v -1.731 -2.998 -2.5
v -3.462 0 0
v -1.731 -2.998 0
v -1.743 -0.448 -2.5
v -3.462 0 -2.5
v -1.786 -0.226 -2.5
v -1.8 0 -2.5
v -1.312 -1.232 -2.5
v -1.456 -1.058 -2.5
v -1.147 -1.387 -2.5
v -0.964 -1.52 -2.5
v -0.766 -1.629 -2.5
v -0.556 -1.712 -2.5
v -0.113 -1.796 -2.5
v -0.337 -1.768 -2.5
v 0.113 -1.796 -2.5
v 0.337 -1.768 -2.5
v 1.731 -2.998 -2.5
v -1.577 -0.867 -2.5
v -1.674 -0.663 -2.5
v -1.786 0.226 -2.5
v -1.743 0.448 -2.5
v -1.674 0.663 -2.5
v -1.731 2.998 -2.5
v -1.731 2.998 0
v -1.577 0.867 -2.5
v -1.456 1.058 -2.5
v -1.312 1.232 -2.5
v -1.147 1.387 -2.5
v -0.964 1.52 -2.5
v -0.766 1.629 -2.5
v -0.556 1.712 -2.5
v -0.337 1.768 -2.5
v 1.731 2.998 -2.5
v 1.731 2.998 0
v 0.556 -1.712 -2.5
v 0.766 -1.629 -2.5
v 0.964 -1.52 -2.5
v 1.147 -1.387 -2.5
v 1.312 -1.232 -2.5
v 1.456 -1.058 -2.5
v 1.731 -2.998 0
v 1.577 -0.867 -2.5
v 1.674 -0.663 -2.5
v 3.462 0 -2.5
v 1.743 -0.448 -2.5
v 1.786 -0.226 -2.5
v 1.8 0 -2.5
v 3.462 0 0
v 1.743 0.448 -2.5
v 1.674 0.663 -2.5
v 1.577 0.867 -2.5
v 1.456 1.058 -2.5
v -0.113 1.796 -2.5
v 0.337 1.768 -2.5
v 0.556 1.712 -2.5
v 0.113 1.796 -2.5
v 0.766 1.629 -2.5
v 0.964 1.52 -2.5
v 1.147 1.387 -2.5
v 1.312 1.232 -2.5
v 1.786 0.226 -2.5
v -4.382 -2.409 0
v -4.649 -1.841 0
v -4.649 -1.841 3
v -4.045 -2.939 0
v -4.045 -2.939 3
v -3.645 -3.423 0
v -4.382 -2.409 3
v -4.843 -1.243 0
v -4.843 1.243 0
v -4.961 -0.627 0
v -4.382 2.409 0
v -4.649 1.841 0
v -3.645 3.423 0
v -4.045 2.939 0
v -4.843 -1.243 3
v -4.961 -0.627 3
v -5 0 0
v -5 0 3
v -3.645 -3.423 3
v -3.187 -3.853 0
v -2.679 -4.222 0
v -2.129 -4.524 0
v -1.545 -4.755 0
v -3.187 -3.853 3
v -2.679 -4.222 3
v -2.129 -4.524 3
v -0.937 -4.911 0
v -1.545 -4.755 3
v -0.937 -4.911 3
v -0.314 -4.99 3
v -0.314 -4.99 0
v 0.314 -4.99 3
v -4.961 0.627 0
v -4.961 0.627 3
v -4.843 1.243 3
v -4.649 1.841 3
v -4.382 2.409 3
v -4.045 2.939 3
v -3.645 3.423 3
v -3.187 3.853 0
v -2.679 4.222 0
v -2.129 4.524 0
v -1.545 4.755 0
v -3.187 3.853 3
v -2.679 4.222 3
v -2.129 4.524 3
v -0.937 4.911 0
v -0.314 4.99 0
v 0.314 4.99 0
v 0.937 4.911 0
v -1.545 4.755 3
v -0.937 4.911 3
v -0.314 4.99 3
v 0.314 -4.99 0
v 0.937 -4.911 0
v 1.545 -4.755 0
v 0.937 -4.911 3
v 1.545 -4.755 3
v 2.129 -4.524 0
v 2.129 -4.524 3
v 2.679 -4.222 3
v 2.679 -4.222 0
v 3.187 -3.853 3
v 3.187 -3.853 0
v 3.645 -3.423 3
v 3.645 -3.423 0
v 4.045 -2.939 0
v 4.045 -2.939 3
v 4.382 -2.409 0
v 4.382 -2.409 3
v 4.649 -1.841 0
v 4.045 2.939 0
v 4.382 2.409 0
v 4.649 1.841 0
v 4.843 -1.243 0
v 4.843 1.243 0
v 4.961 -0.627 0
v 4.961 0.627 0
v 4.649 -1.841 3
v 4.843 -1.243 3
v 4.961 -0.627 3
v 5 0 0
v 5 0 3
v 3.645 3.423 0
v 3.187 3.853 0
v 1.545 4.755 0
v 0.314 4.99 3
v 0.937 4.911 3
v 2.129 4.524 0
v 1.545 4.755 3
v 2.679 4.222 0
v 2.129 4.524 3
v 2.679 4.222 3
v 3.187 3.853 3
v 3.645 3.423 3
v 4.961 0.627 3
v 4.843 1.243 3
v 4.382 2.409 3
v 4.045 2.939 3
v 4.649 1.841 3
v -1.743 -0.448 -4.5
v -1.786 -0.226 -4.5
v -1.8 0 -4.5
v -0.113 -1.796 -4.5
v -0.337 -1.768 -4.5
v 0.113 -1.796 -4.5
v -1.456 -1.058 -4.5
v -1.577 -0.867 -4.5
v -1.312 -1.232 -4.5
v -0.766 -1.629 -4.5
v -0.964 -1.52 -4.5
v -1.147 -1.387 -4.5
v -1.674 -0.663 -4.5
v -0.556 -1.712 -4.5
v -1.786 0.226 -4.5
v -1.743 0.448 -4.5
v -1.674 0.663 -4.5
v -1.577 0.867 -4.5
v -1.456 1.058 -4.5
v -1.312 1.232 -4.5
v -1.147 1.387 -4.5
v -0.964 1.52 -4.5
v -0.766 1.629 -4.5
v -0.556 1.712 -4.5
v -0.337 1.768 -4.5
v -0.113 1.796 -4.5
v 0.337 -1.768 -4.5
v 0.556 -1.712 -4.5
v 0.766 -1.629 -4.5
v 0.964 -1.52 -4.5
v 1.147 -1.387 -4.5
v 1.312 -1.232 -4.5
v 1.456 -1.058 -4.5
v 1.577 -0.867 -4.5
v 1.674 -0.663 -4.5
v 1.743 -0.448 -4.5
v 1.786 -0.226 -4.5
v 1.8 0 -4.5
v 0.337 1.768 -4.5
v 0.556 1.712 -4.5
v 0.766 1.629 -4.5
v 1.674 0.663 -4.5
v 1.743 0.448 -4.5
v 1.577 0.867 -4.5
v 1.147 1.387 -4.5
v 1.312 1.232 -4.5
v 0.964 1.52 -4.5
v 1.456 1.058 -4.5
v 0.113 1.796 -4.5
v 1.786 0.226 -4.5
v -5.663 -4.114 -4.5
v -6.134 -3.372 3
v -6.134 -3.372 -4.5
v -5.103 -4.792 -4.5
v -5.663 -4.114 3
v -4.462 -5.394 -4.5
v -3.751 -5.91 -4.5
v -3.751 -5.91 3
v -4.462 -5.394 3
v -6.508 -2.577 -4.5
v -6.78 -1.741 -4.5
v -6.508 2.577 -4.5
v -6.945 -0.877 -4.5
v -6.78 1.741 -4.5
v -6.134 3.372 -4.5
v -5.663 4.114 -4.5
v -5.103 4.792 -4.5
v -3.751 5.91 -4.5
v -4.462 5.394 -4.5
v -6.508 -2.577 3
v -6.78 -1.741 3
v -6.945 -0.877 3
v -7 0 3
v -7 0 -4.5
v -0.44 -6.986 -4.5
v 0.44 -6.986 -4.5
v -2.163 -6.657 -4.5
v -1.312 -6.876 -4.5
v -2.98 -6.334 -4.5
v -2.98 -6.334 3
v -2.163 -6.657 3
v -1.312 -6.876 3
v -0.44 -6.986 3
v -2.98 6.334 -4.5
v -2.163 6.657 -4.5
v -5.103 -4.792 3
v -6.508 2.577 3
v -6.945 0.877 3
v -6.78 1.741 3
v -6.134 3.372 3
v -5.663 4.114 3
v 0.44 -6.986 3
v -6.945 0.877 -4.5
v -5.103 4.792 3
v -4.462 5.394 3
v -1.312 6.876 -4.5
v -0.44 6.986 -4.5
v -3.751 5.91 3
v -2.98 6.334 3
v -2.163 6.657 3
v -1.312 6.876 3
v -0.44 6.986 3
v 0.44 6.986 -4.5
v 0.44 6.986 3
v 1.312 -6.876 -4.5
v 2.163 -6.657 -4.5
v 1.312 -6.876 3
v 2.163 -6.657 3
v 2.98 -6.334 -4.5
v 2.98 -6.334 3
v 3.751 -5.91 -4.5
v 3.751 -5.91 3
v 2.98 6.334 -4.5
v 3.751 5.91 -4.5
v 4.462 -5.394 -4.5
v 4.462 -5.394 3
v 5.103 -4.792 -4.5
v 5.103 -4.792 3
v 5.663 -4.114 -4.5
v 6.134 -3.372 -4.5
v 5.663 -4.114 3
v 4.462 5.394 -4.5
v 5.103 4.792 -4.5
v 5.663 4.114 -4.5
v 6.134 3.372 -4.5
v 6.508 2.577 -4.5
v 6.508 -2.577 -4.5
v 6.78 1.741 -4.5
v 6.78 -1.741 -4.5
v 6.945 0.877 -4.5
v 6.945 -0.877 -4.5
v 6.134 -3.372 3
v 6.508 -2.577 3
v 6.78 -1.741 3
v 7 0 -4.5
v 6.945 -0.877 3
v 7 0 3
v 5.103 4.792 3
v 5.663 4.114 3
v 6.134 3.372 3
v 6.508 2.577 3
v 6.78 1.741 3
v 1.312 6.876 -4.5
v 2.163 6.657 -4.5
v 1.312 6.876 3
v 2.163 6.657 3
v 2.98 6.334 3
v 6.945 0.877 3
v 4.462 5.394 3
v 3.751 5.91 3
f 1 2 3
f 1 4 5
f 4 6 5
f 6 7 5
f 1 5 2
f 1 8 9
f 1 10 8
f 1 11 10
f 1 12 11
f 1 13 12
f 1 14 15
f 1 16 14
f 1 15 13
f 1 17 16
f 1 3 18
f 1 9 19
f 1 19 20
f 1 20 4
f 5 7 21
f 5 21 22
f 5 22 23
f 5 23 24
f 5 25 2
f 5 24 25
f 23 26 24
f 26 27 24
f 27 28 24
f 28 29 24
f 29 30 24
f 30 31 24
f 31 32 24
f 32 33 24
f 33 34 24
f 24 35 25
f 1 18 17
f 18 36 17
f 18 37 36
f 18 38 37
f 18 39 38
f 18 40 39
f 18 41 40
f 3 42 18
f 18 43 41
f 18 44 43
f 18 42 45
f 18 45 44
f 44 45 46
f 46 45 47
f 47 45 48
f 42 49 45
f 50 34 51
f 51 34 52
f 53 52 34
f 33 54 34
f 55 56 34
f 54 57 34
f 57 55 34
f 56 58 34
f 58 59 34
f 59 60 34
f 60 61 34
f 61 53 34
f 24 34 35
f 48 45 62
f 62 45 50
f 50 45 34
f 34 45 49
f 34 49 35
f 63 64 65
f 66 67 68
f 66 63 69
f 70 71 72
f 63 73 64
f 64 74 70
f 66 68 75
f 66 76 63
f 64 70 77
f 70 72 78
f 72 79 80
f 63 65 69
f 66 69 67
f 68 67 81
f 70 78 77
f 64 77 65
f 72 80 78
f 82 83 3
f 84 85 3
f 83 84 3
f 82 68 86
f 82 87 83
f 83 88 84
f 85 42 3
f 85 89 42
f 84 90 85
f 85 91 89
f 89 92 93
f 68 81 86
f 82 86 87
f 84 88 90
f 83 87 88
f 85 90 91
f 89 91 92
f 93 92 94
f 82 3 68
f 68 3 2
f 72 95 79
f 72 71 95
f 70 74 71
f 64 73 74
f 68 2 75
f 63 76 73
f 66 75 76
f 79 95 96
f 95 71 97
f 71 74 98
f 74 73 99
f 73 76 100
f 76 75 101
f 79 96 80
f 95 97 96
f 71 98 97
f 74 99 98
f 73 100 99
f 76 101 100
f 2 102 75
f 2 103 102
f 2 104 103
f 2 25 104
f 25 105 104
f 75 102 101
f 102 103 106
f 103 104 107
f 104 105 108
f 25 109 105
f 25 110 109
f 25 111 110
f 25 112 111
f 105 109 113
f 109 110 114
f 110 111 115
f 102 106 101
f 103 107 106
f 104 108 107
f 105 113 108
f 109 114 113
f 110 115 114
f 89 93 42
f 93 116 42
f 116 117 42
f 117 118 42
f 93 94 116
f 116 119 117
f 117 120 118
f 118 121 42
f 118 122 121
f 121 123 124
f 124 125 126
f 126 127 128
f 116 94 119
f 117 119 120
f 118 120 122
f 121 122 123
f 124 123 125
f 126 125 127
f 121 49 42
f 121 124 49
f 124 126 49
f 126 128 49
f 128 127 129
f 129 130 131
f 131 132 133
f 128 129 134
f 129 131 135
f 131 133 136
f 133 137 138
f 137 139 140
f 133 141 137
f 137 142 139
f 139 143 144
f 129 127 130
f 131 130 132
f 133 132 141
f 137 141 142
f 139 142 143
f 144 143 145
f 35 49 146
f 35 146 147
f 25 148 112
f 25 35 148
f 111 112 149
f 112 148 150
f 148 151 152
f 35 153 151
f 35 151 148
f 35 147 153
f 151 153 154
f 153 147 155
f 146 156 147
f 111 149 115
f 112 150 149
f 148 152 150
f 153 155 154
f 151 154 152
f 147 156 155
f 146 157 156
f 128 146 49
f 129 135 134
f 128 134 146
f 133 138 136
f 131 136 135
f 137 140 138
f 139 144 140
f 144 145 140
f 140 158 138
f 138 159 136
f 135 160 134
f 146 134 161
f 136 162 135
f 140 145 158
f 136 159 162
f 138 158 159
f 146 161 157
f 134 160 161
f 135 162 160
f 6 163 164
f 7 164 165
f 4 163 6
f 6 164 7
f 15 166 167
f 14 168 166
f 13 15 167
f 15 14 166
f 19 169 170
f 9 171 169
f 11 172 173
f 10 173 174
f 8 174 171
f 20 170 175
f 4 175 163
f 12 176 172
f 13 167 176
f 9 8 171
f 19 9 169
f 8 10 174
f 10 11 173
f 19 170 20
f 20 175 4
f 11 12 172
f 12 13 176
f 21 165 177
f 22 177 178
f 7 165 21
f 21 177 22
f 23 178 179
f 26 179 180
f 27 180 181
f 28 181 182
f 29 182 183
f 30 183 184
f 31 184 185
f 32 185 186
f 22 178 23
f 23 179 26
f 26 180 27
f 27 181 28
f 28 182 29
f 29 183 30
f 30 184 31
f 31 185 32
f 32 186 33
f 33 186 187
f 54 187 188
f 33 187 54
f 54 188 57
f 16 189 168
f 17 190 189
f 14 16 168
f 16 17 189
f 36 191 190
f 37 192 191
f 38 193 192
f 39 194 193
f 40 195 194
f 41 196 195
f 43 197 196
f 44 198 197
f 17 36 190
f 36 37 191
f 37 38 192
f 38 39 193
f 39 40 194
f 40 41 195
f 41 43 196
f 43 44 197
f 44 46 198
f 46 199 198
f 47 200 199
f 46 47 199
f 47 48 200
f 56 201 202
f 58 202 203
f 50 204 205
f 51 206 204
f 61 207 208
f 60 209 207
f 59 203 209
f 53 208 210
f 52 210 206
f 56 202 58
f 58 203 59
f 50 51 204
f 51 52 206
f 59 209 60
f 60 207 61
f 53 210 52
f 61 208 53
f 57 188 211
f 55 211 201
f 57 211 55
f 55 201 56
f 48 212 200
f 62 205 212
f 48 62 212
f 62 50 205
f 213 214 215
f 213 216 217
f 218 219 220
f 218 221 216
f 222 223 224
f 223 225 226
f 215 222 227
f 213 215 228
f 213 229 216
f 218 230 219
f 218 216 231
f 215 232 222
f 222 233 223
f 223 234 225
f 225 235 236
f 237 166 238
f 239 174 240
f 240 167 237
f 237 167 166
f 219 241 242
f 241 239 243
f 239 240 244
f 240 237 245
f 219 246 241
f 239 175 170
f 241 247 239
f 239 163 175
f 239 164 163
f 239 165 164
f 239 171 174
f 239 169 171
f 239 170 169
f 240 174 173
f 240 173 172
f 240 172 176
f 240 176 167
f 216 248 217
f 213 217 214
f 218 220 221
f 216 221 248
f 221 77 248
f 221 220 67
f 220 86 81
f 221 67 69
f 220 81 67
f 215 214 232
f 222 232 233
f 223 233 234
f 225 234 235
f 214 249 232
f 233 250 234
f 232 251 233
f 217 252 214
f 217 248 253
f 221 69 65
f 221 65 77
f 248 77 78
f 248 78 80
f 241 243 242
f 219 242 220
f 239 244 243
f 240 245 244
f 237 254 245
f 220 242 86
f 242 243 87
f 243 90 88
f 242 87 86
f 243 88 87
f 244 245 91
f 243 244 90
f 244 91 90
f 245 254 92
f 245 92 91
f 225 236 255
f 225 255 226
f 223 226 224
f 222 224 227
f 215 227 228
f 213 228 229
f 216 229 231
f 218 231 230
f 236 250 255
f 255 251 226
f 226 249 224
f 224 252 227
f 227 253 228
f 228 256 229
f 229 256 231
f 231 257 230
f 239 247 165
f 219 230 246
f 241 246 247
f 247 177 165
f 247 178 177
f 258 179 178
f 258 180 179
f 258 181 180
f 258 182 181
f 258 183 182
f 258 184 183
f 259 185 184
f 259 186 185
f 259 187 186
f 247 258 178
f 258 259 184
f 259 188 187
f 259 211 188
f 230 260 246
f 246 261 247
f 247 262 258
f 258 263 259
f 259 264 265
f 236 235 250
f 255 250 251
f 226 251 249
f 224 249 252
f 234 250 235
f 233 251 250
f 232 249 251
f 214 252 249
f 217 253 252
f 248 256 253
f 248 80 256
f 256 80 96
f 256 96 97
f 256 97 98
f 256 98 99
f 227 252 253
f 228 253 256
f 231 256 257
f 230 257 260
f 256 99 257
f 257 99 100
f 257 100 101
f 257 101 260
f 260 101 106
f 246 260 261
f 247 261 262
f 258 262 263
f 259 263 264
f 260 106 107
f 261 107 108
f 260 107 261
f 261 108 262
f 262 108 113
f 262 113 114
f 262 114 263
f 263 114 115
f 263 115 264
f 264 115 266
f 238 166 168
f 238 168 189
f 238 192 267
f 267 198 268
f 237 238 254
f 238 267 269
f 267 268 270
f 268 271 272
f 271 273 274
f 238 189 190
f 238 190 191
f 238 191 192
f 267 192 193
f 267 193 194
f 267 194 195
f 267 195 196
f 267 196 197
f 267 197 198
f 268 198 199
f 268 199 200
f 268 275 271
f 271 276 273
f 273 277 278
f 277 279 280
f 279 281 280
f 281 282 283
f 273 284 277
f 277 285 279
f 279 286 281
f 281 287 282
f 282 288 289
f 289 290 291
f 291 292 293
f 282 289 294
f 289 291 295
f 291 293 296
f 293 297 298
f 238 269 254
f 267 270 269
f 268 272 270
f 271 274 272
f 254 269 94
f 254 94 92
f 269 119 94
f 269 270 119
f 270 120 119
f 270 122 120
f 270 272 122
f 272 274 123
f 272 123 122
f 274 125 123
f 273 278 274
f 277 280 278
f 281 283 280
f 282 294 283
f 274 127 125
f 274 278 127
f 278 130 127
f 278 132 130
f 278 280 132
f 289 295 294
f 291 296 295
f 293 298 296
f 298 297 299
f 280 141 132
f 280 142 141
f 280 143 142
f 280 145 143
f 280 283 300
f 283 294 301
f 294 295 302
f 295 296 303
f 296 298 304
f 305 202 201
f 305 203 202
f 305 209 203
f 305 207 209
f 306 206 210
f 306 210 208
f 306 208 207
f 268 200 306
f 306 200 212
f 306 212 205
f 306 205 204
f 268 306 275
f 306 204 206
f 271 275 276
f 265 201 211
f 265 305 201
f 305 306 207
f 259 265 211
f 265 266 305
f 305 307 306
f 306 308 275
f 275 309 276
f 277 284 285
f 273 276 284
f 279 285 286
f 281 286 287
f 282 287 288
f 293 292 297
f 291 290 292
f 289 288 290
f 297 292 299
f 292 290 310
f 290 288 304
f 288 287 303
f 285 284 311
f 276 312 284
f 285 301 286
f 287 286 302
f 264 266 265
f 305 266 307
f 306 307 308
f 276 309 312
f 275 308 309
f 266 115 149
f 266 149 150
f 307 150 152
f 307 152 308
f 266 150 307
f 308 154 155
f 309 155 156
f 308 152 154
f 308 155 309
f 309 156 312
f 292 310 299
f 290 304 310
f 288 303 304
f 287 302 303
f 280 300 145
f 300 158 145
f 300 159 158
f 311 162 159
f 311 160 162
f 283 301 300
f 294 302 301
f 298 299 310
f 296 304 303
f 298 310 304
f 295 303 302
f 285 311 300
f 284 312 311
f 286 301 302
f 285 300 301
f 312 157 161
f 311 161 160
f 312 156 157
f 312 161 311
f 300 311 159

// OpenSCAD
$fn = 50;

difference() {
	union() {
		translate(v = [0, 0, -4.5]) {
			cylinder(h = 7.5, r = 7.0);
		}
	}
	union() {
		translate(v = [0, 0, 0]) {
			rotate(a = [0, 0, 0]) {
				difference() {
					union() {
						translate(v = [0, 0, -2.5]) {
							linear_extrude(height = 2.5) {
								polygon(points = [[3.4619999999999997, 0.0], [1.7310000000000003, 2.9981799479017264], [-1.7309999999999992, 2.9981799479017264], [-3.4619999999999997, 4.2397272186481365e-16], [-1.7310000000000014, -2.998179947901726], [1.7309999999999977, -2.9981799479017277]]);
							}
						}
					}
					union();
				}
			}
		}
		#cylinder(h = 3, r = 5.0);
		#translate(v = [0, 0, -100.0]) {
			cylinder(h = 200, r = 1.8);
		}
	}
}
